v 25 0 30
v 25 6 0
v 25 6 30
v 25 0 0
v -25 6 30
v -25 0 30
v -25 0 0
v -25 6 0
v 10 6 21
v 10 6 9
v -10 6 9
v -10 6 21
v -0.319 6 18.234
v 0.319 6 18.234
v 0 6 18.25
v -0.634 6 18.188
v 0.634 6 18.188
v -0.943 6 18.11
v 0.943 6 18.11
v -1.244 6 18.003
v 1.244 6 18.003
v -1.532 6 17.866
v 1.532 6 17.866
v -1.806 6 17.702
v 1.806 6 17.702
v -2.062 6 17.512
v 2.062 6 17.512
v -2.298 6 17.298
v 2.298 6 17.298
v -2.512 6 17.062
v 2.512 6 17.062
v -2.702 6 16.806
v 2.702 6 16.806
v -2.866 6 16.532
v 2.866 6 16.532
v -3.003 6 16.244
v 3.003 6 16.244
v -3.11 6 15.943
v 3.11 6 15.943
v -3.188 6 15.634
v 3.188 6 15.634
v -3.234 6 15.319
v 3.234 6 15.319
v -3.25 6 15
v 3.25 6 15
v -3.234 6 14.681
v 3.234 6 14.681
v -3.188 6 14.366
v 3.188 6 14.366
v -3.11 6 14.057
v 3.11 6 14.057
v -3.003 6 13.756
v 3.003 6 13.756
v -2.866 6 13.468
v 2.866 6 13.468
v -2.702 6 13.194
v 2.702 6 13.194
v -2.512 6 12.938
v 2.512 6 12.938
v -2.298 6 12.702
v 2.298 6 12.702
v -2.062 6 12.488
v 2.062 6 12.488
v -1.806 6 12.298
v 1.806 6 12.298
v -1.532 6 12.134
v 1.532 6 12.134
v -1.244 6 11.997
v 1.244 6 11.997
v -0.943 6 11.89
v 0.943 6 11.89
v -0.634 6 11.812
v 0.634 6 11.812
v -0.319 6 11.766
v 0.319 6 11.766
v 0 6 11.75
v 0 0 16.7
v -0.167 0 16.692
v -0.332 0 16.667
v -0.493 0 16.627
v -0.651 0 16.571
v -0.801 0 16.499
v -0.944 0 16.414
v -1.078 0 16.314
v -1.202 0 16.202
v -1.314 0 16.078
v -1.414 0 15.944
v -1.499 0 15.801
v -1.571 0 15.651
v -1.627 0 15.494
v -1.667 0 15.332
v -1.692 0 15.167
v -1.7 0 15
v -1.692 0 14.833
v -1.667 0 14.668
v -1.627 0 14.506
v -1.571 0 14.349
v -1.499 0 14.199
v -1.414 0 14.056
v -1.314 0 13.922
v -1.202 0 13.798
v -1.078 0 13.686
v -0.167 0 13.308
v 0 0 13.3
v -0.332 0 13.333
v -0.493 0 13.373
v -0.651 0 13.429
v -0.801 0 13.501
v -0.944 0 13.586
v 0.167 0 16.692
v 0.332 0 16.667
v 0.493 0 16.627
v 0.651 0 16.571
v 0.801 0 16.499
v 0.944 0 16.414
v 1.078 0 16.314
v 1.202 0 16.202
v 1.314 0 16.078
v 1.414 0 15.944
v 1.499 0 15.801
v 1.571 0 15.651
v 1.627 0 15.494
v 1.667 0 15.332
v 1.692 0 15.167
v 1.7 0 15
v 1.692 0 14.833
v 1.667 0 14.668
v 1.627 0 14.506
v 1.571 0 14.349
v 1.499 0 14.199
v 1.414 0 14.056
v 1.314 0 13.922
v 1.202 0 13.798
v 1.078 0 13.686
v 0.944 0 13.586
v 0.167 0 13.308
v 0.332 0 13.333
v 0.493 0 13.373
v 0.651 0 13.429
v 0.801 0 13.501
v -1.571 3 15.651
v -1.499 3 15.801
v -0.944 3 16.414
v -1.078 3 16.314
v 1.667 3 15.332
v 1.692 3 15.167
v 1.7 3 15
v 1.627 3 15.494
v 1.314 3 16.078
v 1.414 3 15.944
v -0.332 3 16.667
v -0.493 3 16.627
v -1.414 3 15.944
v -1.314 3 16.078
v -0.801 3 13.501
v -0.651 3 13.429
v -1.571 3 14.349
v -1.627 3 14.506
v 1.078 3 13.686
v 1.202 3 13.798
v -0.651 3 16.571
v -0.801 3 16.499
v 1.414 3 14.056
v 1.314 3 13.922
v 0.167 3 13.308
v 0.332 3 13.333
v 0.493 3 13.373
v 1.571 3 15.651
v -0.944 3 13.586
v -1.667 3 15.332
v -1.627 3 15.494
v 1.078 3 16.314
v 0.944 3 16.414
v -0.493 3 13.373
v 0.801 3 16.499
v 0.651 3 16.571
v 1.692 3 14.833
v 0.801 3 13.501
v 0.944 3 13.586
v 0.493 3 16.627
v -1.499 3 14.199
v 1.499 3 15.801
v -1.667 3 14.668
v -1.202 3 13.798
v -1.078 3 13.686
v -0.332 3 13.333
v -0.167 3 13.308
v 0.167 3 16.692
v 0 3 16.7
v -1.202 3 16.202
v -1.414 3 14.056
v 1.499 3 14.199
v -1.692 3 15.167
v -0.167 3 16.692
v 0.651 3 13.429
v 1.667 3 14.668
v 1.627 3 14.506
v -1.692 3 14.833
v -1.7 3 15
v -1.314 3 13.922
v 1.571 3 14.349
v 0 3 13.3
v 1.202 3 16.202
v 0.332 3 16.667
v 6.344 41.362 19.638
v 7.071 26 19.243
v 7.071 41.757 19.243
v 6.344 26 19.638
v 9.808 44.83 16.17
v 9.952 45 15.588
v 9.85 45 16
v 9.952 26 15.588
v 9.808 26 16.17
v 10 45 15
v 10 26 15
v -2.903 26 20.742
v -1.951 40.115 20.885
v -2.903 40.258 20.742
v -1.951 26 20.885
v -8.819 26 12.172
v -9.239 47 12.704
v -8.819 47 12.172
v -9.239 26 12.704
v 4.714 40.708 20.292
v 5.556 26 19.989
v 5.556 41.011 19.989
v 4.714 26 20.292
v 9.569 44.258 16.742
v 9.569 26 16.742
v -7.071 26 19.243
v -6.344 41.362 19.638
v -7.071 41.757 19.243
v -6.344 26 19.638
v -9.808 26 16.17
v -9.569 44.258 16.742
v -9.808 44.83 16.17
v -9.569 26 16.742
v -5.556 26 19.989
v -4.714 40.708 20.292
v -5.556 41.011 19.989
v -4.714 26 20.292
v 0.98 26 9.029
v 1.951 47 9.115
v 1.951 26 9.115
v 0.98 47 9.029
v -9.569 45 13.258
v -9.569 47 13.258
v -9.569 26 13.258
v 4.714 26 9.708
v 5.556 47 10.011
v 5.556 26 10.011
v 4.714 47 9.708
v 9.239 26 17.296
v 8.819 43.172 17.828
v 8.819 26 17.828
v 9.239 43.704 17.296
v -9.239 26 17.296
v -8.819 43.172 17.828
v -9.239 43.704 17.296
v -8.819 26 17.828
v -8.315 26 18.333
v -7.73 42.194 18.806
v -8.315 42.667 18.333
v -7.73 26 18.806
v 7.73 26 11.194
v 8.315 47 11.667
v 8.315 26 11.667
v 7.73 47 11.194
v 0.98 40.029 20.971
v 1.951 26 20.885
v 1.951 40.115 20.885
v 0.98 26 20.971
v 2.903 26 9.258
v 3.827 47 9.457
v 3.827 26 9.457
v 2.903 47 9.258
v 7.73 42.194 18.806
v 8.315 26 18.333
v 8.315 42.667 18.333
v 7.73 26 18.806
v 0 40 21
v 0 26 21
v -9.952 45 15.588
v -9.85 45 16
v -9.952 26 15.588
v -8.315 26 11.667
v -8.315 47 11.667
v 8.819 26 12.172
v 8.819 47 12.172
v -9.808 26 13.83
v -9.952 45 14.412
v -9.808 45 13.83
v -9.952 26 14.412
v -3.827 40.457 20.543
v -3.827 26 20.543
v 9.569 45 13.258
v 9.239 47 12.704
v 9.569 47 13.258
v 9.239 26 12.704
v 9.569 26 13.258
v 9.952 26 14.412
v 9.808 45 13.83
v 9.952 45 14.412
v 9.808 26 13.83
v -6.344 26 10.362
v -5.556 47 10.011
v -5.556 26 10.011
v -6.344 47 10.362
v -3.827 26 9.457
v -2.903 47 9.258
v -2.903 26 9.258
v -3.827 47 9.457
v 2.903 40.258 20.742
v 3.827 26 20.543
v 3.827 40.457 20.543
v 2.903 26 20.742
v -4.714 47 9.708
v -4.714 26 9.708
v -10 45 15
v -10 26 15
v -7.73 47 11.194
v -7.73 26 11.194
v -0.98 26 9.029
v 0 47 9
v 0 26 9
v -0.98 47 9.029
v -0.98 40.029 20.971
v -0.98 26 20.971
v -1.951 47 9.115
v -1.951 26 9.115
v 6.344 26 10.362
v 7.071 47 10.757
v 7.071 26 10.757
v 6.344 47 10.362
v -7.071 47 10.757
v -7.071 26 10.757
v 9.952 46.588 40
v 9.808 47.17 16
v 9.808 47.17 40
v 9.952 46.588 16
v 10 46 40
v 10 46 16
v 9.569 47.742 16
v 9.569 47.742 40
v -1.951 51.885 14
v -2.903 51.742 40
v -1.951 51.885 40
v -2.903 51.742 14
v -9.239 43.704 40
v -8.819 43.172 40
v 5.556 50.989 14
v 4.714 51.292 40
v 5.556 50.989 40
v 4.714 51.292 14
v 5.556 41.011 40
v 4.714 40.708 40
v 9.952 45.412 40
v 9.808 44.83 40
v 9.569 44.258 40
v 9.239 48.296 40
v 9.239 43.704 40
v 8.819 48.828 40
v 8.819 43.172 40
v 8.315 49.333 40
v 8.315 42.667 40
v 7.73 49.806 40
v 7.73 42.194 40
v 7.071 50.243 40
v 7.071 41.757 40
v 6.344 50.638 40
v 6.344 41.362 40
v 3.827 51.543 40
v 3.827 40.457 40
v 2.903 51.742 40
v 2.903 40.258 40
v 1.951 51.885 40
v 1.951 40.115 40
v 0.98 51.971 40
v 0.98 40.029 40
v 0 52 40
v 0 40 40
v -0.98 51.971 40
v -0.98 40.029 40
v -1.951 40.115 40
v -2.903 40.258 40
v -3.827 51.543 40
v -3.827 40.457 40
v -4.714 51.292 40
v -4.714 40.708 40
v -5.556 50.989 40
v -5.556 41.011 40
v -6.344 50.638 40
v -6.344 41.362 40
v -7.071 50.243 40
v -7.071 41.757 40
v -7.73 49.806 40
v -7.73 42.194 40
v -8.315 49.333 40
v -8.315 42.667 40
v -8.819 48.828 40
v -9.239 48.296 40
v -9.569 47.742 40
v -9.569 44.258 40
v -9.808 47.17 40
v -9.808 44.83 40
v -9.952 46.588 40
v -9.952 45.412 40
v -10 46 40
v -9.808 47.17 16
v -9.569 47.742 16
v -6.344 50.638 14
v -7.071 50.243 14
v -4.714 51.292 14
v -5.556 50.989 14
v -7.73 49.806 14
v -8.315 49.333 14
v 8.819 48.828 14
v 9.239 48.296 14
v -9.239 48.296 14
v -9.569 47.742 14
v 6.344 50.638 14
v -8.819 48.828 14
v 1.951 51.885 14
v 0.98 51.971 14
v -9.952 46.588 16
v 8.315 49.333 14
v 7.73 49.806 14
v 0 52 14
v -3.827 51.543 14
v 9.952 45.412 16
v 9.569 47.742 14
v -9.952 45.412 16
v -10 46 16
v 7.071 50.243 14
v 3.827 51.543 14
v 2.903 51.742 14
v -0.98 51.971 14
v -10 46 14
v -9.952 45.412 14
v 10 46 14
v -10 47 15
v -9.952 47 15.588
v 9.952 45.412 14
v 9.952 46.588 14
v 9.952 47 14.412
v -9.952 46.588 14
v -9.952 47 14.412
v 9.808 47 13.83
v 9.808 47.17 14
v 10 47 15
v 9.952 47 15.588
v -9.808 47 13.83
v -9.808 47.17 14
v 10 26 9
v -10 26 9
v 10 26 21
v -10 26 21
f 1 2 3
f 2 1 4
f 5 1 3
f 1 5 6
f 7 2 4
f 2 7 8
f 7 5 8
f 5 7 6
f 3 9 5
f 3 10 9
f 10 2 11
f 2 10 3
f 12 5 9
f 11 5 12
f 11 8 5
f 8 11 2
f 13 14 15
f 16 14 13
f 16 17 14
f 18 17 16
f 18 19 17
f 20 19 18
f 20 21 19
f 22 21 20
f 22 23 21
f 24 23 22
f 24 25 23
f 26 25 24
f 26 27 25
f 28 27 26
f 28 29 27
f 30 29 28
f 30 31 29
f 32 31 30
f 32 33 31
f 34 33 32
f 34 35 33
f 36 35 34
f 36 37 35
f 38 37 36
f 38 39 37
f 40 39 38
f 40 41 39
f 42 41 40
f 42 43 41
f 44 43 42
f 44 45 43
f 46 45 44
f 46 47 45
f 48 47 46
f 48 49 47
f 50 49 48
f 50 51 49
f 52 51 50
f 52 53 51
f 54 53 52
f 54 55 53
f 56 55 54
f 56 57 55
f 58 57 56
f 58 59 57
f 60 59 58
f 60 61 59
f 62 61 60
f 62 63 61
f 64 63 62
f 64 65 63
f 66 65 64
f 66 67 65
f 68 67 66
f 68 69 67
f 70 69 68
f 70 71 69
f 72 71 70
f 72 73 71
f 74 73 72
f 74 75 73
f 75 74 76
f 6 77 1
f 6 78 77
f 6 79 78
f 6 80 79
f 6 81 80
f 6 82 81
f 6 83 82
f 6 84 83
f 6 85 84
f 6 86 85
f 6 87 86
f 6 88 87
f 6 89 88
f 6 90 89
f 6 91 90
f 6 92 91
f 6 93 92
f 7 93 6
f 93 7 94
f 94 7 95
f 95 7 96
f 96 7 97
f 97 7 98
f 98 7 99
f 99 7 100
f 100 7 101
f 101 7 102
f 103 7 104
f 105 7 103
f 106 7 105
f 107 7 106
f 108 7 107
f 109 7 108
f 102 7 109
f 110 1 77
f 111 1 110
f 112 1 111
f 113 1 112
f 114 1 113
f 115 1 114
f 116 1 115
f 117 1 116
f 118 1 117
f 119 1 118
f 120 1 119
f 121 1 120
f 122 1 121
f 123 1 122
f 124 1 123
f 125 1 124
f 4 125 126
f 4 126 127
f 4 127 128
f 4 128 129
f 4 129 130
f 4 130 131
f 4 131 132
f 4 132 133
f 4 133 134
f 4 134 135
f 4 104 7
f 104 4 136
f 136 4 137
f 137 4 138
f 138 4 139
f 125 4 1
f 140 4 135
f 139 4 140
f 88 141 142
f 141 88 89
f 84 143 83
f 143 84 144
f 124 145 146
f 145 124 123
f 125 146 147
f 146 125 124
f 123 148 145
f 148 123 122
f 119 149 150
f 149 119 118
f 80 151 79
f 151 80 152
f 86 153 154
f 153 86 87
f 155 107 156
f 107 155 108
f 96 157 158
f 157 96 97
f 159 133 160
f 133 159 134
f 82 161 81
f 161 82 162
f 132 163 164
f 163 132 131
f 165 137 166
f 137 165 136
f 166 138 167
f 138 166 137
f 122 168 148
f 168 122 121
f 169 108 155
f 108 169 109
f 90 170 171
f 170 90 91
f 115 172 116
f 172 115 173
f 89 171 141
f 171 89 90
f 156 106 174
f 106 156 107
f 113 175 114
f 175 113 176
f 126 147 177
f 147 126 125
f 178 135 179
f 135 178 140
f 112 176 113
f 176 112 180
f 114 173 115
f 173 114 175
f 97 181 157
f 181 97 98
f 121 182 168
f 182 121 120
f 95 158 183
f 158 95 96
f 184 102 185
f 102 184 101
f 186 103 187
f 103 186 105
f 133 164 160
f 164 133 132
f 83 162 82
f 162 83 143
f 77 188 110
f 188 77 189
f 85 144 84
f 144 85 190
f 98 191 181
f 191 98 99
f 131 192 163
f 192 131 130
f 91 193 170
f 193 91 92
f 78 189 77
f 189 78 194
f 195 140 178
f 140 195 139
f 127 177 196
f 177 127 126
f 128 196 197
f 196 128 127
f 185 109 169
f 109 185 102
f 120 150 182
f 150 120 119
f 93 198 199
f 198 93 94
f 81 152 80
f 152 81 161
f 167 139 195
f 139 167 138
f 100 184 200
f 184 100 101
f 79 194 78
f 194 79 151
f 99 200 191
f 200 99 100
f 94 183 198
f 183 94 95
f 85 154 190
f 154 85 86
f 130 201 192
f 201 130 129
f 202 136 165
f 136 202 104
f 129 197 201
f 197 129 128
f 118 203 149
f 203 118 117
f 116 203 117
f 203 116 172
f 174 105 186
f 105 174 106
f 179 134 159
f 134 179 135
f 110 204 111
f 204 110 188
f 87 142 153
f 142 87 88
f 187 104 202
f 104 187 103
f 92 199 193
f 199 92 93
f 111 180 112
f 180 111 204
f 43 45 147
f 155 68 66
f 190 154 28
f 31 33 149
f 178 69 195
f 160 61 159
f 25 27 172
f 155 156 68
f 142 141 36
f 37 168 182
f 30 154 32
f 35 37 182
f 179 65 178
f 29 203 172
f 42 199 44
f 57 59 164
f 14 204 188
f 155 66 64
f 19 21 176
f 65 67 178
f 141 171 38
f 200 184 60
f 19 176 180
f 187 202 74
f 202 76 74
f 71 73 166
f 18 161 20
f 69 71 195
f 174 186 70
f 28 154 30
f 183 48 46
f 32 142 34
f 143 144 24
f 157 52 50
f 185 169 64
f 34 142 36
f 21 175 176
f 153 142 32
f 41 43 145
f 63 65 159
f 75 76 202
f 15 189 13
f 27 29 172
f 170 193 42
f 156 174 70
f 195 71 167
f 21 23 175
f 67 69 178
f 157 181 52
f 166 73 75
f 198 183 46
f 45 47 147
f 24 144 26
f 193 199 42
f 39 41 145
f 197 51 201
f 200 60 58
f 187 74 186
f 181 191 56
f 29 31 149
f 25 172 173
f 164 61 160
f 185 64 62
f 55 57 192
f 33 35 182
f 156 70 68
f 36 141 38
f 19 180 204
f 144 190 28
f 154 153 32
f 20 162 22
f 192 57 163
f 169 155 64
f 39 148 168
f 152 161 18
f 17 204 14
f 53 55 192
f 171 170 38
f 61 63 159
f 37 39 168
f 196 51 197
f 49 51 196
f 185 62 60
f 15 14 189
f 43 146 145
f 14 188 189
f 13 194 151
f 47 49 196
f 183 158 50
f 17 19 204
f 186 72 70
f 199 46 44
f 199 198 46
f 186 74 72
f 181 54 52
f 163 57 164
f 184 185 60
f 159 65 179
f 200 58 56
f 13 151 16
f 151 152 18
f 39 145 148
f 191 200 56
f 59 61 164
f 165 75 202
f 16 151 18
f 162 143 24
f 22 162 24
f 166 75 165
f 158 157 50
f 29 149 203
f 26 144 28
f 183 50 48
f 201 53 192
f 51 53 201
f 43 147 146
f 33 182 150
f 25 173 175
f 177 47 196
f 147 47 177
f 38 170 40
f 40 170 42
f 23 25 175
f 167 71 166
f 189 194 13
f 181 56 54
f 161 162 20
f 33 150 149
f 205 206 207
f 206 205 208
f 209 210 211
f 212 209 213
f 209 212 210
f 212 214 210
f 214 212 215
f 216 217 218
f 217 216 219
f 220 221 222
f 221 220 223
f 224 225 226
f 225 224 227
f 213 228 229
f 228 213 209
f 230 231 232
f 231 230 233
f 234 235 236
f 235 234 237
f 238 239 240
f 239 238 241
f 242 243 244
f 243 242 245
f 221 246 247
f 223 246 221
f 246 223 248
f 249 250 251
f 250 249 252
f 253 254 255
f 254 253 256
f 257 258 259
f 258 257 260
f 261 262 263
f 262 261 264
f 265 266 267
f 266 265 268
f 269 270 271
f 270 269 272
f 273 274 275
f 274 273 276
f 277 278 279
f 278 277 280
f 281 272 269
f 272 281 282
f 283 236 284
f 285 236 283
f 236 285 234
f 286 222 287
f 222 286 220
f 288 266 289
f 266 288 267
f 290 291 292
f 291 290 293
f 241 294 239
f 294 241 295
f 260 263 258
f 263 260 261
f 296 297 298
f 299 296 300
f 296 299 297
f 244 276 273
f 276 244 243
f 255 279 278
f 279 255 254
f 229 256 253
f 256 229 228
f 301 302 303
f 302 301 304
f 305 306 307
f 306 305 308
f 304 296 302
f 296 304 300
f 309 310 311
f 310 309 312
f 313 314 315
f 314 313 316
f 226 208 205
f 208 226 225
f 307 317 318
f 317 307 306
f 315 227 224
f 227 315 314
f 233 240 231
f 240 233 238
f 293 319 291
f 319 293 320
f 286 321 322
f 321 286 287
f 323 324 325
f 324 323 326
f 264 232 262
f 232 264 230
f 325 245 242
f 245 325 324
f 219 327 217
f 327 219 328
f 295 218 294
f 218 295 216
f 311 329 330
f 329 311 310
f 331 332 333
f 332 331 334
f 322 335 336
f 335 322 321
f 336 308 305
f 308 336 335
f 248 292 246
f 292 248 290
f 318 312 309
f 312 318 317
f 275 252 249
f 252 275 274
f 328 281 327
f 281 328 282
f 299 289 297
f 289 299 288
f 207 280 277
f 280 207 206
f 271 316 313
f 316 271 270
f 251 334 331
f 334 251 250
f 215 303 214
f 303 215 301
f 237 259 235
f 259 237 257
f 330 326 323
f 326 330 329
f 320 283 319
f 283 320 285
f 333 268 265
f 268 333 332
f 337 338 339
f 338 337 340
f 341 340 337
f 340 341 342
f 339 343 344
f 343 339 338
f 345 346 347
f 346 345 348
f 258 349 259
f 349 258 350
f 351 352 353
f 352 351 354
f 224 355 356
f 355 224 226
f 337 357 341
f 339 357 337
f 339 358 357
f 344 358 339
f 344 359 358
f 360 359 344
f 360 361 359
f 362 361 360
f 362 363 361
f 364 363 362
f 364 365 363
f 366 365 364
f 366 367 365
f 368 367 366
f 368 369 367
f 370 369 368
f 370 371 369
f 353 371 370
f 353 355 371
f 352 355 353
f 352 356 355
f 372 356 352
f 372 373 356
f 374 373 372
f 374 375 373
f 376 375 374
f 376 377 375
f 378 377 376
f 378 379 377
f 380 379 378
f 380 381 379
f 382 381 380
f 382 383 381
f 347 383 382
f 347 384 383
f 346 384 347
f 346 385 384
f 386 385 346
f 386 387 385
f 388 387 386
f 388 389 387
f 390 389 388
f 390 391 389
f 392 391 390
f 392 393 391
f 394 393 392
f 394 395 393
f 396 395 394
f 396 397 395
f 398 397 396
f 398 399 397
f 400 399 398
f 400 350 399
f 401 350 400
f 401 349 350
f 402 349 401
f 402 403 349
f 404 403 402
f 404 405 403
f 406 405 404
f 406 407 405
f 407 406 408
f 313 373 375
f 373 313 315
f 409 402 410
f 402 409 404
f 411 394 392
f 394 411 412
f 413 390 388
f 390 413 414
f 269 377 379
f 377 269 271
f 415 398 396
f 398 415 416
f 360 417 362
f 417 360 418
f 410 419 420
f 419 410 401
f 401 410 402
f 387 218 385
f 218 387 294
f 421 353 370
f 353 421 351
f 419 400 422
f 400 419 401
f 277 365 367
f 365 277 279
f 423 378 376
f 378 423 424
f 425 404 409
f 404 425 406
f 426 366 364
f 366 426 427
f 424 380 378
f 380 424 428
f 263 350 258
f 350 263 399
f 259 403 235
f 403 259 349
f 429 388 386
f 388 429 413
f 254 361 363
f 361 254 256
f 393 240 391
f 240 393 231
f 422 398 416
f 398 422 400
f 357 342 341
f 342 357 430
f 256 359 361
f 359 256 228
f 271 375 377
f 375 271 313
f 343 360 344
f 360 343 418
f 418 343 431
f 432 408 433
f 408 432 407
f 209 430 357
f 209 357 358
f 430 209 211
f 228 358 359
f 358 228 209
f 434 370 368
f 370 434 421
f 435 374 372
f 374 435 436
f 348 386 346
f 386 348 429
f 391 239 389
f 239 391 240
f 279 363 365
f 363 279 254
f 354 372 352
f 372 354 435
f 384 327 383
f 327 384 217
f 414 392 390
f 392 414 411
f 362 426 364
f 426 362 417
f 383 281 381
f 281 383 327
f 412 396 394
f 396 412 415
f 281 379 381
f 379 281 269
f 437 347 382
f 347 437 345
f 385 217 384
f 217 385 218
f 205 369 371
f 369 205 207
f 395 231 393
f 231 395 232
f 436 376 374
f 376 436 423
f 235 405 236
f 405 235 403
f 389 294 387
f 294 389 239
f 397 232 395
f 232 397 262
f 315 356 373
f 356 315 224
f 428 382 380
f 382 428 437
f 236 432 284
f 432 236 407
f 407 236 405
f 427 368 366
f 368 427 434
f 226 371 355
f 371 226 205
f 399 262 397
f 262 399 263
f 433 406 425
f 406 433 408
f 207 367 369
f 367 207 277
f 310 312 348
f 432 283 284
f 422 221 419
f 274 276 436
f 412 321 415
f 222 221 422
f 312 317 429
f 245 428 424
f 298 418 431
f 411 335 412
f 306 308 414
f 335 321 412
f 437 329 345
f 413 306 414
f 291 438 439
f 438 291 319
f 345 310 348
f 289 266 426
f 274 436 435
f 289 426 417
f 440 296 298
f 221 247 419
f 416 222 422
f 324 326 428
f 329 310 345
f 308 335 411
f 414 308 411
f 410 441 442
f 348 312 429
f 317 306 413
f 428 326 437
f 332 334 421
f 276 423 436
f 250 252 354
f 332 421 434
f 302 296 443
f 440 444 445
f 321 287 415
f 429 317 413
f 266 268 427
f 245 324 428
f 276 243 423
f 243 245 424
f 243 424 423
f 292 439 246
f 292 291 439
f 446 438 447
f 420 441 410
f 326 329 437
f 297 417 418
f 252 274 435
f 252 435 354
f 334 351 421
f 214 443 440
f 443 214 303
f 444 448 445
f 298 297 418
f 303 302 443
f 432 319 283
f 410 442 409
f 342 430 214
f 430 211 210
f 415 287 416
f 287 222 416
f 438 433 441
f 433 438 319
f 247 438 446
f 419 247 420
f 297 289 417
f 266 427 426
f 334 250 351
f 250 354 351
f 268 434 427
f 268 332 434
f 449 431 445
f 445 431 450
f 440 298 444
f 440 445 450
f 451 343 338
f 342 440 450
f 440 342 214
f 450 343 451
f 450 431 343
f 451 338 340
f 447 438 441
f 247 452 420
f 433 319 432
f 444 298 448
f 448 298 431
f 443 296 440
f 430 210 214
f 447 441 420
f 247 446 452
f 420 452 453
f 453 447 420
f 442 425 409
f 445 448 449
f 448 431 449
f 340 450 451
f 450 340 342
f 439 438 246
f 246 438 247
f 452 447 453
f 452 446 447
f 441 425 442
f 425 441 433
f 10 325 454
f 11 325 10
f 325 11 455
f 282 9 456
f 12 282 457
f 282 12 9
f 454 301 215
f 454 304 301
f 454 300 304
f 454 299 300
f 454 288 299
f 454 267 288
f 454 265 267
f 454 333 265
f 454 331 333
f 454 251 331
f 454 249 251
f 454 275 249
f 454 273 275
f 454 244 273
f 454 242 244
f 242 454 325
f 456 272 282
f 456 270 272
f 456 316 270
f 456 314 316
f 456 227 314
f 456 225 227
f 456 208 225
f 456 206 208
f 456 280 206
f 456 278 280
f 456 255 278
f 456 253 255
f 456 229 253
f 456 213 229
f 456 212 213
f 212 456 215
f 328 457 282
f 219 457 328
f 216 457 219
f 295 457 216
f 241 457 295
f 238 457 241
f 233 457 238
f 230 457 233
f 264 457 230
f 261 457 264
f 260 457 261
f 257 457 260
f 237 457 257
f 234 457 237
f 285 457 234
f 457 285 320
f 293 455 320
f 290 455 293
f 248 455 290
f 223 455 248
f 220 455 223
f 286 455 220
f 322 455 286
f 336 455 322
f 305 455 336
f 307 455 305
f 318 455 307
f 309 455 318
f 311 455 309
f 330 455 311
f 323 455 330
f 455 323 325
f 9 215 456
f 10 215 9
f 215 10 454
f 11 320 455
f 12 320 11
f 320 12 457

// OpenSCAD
$fn=64;

// Parameters
plate_w = 50;
plate_h = 30;
plate_t = 6;

arm_len = 40;
arm_d = 12;
arm_w = 20;

hook_r = arm_d/2;

// Helper modules
module oval_cyl_y(len){
    // Cylinder along Y axis with oval cross-section (width in X, thickness in Z)
    scale([arm_w/arm_d,1,1])
        rotate([90,0,0])
            cylinder(h=len, r=hook_r, center=true);
}

module oval_cyl_z(len){
    // Cylinder along Z axis with oval cross-section (width in X, depth in Y)
    scale([arm_w/arm_d,1,1])
        cylinder(h=len, r=hook_r, center=true);
}

module base_plate(){
    difference(){
        translate([-plate_w/2,0,0])
            cube([plate_w, plate_t, plate_h]);
        // M3 countersunk screw hole
        translate([0, plate_t/2, plate_h/2])
            rotate([90,0,0])
                cylinder(h=plate_t+0.5, r=1.7, center=true);
        // Countersink (90 deg)
        translate([0, plate_t-1.5, plate_h/2])
            rotate([90,0,0])
                cylinder(h=3, r1=3.25, r2=1.7, center=true);
    }
}

module hook_body(){
    union(){
        // Horizontal arm
        translate([0, plate_t + arm_len/2, plate_h/2])
            oval_cyl_y(arm_len);
        // Vertical upturn at end
        translate([0, plate_t + arm_len, plate_h/2 + 12.5])
            oval_cyl_z(25);
        // Smooth bend between horizontal and vertical
        hull(){
            translate([0, plate_t + arm_len, plate_h/2])
                oval_cyl_y(2);
            translate([0, plate_t + arm_len, plate_h/2])
                oval_cyl_z(2);
        }
        // Reinforcing gusset under arm
        hull(){
            translate([-arm_w/2, plate_t, plate_h/2 - 6])
                cube([arm_w, 2, 12]);
            translate([-arm_w/2, plate_t + 18, plate_h/2 - 6])
                cube([arm_w, 2, 12]);
        }
    }
}

union(){
    base_plate();
    hook_body();
}
